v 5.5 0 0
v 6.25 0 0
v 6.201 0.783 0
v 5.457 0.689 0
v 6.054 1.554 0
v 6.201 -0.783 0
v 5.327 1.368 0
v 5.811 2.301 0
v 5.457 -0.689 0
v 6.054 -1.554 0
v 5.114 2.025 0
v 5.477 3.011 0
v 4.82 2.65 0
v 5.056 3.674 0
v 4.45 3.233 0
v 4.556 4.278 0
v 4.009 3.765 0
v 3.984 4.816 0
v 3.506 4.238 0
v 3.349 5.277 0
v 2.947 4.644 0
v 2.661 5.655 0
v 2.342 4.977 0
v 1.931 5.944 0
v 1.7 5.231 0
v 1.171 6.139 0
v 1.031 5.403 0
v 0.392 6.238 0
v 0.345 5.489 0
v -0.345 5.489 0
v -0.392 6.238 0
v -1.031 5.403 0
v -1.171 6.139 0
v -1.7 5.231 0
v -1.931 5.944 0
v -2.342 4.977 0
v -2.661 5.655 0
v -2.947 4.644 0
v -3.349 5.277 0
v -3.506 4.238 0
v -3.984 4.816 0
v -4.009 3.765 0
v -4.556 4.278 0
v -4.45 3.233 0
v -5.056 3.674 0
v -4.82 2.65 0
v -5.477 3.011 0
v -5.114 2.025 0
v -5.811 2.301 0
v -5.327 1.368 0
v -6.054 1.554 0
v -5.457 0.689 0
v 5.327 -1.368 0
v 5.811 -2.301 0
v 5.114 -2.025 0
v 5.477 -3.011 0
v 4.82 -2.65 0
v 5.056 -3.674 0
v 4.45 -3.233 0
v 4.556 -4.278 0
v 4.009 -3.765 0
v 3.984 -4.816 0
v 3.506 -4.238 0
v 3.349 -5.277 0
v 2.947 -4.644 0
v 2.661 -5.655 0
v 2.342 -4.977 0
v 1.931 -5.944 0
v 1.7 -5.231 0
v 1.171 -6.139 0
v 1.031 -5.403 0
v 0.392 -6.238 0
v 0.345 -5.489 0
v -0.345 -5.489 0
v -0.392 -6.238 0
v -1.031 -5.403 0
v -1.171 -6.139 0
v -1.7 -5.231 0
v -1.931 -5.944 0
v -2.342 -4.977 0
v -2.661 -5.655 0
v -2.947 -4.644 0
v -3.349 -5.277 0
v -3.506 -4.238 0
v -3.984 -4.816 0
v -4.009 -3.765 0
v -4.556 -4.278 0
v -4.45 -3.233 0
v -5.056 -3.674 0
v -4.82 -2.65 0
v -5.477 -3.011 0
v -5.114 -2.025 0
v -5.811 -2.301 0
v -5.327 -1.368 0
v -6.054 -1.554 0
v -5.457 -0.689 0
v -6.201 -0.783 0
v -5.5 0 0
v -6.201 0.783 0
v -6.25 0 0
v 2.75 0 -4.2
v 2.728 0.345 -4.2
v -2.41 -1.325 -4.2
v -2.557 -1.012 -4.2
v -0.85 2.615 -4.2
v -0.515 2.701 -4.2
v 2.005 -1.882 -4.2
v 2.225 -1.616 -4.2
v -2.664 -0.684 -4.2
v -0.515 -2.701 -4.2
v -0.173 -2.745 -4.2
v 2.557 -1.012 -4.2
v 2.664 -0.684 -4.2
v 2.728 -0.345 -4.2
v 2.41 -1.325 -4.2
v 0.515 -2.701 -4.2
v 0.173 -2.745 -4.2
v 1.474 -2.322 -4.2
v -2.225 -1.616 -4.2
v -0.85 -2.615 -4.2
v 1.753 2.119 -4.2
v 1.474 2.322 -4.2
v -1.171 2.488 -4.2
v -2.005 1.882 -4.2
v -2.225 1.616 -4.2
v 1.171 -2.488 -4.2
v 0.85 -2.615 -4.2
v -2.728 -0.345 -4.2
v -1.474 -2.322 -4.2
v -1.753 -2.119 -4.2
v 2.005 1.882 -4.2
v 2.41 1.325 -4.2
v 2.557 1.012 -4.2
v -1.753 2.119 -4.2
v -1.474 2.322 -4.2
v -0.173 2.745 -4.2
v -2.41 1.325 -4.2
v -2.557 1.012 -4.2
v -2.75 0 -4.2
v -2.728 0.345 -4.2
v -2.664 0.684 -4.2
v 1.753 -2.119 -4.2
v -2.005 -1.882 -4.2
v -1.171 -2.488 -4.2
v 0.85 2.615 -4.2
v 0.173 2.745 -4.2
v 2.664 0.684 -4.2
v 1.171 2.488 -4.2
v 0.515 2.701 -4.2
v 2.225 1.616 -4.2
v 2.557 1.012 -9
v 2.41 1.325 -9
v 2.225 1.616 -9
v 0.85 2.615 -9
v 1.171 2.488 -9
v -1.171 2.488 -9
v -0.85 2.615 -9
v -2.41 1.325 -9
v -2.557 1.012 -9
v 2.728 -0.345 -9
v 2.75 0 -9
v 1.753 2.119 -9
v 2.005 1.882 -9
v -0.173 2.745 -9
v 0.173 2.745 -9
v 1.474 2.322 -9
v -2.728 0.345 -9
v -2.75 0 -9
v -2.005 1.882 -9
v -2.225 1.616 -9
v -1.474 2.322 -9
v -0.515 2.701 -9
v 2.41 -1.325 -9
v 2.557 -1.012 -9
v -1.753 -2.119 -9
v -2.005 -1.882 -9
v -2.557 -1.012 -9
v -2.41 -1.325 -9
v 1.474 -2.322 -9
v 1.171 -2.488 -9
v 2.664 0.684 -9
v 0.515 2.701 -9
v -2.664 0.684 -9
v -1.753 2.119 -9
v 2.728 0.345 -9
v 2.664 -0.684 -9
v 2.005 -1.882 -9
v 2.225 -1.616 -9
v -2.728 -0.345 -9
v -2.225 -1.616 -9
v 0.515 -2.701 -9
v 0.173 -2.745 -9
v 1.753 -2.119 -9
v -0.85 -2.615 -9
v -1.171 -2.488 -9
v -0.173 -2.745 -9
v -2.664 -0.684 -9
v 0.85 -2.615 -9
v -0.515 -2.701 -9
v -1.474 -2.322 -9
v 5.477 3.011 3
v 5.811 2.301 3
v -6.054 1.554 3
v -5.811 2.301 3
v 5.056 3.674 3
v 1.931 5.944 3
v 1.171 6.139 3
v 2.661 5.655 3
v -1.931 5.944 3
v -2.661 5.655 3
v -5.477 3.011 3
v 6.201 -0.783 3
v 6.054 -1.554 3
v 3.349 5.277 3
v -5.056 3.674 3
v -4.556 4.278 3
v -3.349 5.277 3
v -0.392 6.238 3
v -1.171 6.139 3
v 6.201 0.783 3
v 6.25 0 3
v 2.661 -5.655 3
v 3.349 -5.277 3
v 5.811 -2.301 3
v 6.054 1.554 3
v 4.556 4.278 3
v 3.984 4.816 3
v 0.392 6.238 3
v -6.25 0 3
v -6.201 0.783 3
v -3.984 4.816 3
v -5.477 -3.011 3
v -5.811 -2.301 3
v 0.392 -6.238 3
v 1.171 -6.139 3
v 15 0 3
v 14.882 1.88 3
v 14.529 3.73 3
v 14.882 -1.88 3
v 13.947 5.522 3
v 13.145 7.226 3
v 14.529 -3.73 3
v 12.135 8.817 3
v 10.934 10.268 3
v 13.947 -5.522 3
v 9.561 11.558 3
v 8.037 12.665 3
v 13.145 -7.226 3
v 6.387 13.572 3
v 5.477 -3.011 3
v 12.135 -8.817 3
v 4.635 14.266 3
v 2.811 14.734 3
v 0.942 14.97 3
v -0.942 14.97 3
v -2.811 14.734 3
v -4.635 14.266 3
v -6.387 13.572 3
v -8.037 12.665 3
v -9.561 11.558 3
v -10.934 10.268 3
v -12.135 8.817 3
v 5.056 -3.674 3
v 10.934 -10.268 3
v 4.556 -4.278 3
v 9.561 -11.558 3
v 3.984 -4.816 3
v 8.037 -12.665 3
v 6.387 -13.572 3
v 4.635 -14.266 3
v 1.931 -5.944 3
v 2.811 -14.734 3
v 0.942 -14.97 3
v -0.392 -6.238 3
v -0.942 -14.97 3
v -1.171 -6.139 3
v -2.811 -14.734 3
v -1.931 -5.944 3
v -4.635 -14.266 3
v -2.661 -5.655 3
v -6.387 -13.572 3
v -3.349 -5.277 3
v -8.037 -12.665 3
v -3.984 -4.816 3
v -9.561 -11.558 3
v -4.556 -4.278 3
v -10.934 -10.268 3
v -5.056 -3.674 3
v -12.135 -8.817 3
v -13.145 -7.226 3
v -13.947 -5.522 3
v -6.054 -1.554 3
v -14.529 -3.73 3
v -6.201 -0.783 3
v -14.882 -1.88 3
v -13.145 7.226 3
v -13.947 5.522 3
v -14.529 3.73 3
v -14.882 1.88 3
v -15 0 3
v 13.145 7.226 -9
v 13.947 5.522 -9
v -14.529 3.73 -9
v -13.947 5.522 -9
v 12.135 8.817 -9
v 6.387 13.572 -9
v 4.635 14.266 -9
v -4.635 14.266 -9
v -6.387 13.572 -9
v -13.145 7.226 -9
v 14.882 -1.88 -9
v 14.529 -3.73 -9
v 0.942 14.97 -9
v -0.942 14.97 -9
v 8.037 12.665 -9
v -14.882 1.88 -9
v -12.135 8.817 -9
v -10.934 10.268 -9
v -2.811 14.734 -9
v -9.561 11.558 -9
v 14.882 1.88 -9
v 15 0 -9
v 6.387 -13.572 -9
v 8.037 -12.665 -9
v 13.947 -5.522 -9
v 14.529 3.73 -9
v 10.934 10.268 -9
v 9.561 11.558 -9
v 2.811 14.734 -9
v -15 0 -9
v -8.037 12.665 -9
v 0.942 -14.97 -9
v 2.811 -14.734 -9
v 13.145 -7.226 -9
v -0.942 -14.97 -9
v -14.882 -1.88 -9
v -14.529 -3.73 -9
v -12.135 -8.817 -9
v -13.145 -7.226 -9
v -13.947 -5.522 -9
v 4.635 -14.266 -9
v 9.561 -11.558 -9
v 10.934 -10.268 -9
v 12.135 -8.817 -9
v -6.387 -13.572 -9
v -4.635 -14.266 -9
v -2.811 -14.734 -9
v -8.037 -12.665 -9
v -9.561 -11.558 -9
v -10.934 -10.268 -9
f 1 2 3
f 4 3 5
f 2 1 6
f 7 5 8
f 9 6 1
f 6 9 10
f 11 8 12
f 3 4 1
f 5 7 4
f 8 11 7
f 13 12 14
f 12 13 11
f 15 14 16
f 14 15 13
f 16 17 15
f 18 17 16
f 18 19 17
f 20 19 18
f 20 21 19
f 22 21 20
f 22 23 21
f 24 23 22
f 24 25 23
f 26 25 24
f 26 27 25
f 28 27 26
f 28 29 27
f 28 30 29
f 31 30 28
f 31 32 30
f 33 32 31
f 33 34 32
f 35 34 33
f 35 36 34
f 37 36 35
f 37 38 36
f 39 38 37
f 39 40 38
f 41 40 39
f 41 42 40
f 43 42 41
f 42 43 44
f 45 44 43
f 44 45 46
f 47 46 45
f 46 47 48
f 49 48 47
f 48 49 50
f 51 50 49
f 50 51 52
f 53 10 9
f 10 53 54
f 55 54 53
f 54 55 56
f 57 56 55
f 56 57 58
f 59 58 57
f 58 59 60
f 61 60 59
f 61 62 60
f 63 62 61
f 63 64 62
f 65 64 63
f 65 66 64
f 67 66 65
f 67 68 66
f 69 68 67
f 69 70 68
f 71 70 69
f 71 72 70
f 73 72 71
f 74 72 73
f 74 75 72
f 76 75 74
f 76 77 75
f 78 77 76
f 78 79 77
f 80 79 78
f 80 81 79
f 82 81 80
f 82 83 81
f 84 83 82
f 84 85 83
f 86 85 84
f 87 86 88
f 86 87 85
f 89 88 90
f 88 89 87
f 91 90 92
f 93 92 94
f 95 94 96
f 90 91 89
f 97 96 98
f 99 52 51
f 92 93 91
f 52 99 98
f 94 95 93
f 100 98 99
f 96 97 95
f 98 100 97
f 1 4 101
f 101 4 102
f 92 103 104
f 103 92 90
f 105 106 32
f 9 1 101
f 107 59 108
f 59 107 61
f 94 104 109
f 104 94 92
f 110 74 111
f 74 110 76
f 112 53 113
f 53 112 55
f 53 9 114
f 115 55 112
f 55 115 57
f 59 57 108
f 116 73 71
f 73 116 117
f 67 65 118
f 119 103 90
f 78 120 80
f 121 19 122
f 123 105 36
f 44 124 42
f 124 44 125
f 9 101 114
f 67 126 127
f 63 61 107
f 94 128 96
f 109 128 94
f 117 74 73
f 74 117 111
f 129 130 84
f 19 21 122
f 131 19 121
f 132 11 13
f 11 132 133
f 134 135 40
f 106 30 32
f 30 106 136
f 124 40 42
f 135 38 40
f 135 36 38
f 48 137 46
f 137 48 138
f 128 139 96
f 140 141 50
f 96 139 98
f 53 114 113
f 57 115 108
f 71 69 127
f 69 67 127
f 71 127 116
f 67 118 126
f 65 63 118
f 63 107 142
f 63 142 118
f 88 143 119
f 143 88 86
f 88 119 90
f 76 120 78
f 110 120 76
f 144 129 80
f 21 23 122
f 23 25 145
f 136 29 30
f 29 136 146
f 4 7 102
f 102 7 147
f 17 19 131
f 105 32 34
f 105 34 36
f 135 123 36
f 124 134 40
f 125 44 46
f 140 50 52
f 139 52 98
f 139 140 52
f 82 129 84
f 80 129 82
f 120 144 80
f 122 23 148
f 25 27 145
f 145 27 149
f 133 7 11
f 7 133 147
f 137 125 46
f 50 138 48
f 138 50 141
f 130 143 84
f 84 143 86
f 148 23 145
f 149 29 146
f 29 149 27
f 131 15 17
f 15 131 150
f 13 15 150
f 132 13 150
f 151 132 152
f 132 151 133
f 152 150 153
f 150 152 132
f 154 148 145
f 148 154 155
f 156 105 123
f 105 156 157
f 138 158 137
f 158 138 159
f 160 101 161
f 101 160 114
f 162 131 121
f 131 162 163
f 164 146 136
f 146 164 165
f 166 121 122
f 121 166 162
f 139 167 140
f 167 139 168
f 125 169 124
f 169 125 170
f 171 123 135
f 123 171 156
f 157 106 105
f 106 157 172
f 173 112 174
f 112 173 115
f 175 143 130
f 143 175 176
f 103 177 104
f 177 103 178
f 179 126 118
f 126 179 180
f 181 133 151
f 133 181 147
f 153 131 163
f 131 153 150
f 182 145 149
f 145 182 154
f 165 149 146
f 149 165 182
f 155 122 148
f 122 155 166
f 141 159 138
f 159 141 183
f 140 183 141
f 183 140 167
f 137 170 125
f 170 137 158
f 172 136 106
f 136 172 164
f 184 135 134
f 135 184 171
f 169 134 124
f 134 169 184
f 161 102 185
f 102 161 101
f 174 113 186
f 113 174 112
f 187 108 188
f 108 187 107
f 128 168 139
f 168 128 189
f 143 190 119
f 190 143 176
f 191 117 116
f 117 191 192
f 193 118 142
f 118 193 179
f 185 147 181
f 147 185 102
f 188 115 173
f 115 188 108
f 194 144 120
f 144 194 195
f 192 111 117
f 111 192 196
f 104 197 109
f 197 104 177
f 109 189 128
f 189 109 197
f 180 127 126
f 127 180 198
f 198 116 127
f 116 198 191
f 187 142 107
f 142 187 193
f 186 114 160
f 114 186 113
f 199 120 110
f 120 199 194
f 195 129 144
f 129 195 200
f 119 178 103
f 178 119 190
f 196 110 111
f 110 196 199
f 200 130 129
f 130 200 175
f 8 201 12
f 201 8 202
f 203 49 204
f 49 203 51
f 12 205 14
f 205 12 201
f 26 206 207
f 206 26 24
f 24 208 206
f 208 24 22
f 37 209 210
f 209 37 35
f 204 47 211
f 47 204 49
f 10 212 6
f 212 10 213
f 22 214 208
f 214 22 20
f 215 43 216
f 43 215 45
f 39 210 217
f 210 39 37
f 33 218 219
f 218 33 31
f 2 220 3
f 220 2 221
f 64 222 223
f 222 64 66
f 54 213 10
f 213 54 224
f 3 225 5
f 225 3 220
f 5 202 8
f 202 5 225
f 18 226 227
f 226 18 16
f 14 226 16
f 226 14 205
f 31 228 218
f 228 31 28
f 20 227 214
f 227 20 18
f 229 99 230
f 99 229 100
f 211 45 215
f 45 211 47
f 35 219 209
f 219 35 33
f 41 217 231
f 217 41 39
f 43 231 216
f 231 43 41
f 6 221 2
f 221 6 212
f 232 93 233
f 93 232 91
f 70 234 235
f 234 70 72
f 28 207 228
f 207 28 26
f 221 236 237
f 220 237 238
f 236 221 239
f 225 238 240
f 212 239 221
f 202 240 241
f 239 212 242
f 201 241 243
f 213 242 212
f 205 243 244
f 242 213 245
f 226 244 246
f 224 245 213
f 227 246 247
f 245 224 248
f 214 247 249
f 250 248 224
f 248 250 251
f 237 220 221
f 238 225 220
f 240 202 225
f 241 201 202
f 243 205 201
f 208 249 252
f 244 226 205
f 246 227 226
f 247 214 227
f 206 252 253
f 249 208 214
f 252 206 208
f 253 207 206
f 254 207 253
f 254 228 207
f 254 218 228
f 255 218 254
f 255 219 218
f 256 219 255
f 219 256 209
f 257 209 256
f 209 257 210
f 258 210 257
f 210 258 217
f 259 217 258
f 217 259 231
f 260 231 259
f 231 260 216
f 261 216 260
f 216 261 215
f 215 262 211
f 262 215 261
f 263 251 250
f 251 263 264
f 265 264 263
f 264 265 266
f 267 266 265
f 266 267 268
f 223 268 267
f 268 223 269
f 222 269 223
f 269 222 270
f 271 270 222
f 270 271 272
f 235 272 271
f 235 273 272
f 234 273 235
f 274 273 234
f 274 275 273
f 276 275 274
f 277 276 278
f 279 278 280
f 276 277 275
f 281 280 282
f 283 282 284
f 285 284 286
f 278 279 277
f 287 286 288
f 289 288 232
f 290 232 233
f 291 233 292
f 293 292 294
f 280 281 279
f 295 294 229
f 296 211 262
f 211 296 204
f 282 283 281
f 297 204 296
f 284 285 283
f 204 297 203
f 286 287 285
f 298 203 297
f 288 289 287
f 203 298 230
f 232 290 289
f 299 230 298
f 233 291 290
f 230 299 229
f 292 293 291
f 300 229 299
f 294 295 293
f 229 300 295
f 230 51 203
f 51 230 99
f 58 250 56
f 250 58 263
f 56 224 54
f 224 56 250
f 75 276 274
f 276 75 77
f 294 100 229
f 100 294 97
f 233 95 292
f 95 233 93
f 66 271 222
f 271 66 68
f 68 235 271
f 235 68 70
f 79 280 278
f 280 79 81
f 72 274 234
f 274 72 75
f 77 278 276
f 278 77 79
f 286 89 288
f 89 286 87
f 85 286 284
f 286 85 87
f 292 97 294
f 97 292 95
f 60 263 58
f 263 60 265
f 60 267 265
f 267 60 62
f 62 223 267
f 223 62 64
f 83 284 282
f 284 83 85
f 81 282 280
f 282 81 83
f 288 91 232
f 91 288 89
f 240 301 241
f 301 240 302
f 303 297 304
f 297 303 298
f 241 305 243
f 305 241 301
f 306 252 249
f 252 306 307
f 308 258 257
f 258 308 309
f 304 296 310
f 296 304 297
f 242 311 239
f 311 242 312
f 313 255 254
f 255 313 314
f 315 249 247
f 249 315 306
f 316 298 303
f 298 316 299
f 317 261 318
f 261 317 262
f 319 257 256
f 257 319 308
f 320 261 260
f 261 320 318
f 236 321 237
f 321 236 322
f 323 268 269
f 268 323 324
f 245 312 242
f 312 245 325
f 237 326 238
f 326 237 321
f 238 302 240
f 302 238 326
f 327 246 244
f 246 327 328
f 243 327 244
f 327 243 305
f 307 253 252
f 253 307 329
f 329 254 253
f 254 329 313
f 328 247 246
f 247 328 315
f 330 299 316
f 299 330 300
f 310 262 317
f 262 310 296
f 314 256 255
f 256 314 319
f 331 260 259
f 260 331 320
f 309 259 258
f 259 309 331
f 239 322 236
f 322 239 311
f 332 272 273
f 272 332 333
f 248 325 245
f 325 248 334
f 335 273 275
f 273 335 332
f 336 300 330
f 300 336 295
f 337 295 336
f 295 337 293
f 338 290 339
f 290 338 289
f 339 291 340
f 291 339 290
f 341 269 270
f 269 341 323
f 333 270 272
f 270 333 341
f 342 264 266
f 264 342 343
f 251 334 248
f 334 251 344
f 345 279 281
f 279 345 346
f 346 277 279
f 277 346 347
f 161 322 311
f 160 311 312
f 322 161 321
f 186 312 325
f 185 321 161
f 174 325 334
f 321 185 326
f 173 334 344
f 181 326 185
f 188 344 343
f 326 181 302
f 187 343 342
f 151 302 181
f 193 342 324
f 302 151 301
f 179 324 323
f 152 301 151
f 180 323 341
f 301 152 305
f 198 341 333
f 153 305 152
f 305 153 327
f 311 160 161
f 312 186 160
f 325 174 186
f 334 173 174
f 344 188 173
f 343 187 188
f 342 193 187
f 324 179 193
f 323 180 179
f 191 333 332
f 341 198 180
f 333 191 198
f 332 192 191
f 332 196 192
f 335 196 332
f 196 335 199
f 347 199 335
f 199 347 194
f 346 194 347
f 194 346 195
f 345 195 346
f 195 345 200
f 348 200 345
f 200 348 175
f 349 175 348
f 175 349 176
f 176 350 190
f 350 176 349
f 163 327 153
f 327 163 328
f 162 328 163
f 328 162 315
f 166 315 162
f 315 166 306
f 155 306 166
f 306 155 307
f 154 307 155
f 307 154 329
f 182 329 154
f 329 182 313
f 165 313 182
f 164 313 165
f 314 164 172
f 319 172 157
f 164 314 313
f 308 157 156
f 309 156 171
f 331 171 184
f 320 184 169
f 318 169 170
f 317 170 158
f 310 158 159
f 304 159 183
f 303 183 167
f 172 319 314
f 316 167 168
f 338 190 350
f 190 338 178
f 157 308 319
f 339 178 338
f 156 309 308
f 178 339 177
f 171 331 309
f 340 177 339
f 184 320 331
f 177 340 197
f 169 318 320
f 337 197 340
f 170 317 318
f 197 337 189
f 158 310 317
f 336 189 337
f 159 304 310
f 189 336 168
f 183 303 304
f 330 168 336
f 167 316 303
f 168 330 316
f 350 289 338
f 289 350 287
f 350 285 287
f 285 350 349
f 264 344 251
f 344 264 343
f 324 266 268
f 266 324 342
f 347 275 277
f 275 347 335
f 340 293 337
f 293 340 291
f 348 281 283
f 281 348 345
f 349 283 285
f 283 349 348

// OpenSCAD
$fn = 50;

difference() {
	union() {
		translate(v = [0, 0, -9.0]) {
			cylinder(h = 12, r = 15.0);
		}
	}
	union() {
		translate(v = [0, 0, 0]) {
			rotate(a = [0, 0, 0]) {
				difference() {
					union() {
						translate(v = [0, 0, -12.0]) {
							cylinder(h = 12, r = 2.25);
						}
						translate(v = [0, 0, -4.2]) {
							cylinder(h = 4.2, r1 = 2.75, r2 = 5.5);
						}
						translate(v = [0, 0, -12.0]) {
							cylinder(h = 12, r = 2.75);
						}
						translate(v = [0, 0, -12.0]) {
							cylinder(h = 12, r = 2.25);
						}
					}
					union();
				}
			}
		}
		#cylinder(h = 3, r = 6.25);
	}
}
